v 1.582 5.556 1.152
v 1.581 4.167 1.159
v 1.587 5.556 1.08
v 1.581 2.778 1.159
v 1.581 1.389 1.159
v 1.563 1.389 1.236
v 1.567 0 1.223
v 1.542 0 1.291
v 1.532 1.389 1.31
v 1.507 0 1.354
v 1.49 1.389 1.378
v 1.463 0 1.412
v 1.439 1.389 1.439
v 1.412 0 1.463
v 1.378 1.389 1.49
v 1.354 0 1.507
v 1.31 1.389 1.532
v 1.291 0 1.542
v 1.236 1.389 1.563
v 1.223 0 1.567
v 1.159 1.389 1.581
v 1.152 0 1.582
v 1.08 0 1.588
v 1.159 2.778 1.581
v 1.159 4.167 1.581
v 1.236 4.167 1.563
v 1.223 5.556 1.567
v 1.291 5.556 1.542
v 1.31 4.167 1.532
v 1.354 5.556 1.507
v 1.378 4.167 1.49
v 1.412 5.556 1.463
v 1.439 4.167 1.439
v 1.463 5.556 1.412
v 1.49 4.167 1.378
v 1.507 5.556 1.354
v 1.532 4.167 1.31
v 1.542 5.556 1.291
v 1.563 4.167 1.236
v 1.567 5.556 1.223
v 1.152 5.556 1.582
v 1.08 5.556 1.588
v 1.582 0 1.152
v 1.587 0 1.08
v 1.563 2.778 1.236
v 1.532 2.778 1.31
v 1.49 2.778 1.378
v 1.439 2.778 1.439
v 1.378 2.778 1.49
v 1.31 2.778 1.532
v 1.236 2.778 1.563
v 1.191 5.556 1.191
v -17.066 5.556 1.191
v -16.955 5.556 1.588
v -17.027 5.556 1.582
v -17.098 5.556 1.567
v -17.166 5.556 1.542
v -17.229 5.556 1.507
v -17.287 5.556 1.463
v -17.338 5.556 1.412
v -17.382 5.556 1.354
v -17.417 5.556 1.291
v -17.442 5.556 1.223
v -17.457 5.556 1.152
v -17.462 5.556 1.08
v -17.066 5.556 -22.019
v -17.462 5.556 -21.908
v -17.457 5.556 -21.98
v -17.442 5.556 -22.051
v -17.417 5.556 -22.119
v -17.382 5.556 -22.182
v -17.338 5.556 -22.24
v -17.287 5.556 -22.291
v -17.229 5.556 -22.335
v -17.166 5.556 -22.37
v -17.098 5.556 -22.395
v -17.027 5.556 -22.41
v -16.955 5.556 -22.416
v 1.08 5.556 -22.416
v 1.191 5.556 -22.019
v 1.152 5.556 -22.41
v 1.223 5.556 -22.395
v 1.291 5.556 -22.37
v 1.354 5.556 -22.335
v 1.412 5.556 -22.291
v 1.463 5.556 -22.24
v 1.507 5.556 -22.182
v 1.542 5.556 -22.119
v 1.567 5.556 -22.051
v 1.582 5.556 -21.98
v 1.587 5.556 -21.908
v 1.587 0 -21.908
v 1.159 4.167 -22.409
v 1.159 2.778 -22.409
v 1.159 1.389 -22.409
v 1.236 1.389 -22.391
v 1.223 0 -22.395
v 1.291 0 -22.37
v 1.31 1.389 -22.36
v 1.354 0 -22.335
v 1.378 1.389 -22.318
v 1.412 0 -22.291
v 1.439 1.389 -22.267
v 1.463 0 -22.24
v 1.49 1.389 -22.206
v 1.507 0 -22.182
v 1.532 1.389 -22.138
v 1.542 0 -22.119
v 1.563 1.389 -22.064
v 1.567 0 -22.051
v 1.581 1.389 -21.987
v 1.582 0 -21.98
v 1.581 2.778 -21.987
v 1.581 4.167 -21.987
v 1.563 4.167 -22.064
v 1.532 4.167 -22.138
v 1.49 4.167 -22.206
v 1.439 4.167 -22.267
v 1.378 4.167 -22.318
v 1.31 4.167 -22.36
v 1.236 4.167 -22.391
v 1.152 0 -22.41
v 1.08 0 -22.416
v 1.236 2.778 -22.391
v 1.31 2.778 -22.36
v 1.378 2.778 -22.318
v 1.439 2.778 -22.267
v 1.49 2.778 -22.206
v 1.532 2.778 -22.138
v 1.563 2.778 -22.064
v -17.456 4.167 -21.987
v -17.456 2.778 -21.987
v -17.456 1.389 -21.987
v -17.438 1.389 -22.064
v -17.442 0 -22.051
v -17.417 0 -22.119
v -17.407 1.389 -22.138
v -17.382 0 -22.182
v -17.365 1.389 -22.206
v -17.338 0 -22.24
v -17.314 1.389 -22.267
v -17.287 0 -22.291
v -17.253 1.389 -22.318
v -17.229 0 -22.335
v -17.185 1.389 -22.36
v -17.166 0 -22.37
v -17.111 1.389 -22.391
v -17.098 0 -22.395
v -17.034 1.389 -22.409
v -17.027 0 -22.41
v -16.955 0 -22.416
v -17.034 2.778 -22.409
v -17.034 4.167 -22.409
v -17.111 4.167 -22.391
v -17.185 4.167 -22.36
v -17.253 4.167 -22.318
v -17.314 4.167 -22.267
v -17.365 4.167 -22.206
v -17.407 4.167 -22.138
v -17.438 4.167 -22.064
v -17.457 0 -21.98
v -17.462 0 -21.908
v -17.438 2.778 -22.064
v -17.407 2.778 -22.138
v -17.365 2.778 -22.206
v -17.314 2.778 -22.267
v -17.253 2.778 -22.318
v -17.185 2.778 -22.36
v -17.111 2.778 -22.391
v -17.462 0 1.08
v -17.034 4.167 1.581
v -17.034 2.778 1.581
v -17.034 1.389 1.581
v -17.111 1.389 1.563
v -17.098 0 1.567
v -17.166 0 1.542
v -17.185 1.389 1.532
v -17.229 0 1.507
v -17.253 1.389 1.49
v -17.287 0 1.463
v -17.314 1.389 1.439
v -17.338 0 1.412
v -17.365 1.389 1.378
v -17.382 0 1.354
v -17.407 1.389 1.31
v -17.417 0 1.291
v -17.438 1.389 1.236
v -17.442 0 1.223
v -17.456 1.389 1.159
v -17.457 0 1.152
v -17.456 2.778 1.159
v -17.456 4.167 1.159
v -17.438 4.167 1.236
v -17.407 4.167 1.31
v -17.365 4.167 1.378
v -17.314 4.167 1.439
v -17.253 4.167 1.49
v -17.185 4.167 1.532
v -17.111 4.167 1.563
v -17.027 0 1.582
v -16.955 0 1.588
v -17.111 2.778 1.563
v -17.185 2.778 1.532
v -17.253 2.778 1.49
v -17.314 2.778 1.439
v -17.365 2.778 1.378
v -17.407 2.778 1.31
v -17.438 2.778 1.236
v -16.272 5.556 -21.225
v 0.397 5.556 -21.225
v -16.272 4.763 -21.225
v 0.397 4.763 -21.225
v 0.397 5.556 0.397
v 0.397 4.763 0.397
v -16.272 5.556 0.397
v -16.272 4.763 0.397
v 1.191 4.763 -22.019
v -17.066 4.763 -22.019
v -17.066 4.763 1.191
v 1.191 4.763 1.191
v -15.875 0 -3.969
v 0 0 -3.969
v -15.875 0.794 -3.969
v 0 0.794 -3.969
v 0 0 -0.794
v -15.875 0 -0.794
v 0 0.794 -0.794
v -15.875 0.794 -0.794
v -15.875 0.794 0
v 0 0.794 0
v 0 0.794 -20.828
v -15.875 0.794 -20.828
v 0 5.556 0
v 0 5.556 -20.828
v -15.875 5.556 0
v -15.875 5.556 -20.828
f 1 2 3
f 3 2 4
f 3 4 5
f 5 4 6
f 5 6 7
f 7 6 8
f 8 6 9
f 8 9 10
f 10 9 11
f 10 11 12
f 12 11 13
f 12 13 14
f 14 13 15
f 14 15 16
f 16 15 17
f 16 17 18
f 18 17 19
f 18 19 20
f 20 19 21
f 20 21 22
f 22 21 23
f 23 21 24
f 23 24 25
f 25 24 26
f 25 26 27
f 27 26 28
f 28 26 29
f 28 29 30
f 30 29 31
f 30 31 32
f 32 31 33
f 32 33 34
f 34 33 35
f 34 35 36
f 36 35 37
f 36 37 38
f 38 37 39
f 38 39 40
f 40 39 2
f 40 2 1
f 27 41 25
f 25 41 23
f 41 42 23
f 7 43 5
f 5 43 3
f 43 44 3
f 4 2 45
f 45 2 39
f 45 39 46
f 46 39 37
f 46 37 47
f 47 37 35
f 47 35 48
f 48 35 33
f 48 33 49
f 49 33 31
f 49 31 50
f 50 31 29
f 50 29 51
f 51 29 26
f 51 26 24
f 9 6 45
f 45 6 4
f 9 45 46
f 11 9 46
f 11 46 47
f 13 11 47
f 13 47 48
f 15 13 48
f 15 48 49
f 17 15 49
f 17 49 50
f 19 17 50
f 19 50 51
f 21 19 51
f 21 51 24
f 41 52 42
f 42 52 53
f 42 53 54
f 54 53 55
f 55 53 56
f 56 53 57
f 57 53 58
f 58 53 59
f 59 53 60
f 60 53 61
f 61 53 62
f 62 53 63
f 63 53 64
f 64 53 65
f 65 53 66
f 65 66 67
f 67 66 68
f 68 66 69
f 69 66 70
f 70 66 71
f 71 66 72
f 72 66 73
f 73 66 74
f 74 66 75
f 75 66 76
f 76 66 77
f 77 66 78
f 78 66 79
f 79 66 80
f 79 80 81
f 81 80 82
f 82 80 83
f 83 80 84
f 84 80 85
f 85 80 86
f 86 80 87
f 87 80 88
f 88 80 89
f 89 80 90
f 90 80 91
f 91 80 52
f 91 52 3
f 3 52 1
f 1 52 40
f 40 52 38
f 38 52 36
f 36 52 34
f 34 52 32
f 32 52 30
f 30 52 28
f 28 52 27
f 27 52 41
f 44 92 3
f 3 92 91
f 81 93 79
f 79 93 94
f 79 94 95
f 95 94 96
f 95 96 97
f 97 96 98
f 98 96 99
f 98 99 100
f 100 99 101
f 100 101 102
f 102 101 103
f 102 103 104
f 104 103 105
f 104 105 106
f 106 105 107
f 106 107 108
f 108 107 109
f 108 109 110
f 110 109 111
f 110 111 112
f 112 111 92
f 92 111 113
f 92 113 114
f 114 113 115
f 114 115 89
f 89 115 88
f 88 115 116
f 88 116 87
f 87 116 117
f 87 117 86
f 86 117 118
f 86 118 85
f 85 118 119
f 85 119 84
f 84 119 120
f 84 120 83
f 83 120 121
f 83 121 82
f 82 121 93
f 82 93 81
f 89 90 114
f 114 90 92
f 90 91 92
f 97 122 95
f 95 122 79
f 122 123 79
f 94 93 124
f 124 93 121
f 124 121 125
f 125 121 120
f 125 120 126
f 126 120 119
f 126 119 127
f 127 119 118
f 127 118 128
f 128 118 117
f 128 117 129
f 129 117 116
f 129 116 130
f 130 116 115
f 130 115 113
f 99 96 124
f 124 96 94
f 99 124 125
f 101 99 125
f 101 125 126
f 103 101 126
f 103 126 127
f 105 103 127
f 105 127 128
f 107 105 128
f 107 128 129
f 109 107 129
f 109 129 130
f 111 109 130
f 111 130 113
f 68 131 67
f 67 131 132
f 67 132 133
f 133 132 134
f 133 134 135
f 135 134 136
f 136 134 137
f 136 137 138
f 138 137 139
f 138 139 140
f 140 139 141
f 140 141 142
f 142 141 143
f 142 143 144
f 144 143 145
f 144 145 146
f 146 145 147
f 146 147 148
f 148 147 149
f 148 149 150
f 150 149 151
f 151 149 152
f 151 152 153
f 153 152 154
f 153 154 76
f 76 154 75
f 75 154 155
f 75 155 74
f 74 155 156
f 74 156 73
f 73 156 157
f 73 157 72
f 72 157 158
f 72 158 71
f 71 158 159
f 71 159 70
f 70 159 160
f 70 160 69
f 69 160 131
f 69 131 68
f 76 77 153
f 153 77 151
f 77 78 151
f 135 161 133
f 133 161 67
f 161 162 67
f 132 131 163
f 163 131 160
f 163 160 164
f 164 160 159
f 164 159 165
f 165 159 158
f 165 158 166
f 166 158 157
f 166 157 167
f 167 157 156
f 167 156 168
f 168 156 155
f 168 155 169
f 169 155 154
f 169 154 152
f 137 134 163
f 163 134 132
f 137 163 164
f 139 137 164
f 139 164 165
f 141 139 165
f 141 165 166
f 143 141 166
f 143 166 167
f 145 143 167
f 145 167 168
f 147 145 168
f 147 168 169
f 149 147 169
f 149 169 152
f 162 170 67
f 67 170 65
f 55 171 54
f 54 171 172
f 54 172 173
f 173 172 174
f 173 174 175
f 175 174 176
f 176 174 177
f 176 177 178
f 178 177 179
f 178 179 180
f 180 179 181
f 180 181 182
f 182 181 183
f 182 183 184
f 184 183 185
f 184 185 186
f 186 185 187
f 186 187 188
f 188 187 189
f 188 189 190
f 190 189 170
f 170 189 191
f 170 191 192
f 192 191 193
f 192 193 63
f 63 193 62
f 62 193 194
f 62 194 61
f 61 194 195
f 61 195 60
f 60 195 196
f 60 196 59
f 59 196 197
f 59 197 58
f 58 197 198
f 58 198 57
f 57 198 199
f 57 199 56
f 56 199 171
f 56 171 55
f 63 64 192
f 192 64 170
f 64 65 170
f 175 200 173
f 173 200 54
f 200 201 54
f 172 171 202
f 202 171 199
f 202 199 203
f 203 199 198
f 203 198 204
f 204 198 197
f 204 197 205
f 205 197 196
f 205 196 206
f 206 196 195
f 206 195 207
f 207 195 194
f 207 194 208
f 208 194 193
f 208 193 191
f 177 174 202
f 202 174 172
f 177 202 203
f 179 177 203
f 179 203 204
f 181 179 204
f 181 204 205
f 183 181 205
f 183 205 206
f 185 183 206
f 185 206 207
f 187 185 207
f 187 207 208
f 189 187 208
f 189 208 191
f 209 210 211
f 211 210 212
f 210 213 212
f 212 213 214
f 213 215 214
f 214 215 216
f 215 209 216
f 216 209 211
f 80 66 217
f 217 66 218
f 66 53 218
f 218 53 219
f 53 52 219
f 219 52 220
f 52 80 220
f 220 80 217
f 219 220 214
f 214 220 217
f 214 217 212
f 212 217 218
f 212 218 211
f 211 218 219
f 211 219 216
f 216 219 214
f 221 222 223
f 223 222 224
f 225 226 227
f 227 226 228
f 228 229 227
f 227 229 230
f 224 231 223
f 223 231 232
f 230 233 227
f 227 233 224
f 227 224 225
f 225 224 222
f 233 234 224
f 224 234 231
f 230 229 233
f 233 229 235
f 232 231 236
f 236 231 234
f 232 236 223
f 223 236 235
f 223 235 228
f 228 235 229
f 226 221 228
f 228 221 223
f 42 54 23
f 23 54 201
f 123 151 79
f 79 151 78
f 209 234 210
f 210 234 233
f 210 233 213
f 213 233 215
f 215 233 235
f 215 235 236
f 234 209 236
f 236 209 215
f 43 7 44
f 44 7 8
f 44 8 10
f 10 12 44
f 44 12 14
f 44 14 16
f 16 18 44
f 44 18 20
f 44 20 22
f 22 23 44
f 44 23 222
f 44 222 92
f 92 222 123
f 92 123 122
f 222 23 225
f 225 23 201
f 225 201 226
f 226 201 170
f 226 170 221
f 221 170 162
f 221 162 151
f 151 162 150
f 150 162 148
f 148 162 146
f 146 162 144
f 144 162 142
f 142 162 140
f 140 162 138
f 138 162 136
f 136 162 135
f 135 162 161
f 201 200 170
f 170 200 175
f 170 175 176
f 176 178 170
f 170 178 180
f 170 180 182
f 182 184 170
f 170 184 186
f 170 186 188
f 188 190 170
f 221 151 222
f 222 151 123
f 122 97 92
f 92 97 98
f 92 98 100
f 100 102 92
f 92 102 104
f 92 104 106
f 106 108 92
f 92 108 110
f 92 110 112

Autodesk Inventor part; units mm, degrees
ref_plane "YZ Plane" through (0, 0, 0) normal (1, 0, 0) x (0, 1, 0)
ref_plane "XZ Plane" through (0, 0, 0) normal (0, 1, 0) x (-1, 0, 0)
ref_plane "XY Plane" through (0, 0, 0) normal (0, 0, 1) x (1, 0, 0)
sketch "Sketch1" plane through (0, 0, 0) normal (0, 1, 0) x (-1, 0, 0)
  line L0 (0, 0) -> (15.875, 0)
  line L1 (15.875, 0) -> (15.875, -20.828)
  line L2 (15.875, -20.828) -> (0, -20.828)
  line L3 (0, -20.828) -> (0, 0)
  line L4 (17.4625, 1.5875) -> (-1.5875, 1.5875)
  line L5 (-1.5875, 1.5875) -> (-1.5875, -22.4155)
  line L6 (-1.5875, -22.4155) -> (17.4625, -22.4155)
  line L7 (17.4625, -22.4155) -> (17.4625, 1.5875)
  dimension "d0" = 20.828
  dimension "d1" = 15.875
  dimension "d2" = 1.5875
  dimension "d3" = 1.5875
  dimension "d4" = 1.5875
  dimension "d5" = 1.5875
extrude "Extrusion1" add sketch "Sketch1" along normal blind 0.7937 contours L0 L1 L2 L3
extrude "Extrusion2" add sketch "Sketch1" along normal blind 5.5563
sketch "Sketch2" plane through (0, 0.7937, 0) normal (0, 1, 0) x (1, 0, 0)
  line L0 (0, 0) -> (-15.875, 0) projected
  line L1 (0, 20.828) -> (-15.875, 20.828) projected
  line L2 (-15.875, 20.828) -> (-15.875, 0) projected
  line L3 (-15.875, 0) -> (0, 0) projected
  line L4 (0, 0) -> (0, 20.828) projected
  line L5 (-15.875, 0.7938) -> (0, 0.7937)
  line L6 (0, 0.7937) -> (0, 3.9688)
  line L7 (0, 3.9688) -> (-15.875, 3.9687)
  line L8 (-15.875, 3.9687) -> (-15.875, 0.7938)
  point P0 (0, 0.7937)
  dimension "d10" = 3.175
  dimension "d11" = 0.7937
extrude "Extrusion3" cut sketch "Sketch2" against normal blind 5.5563 contours L5 L2 L7 L4
sketch "Sketch3" plane through (0, 5.5563, 0) normal (0, 1, 0) x (1, 0, 0)
  line L0 (1.5875, -1.5875) -> (1.5875, 22.4155) projected
  line L1 (1.5875, 22.4155) -> (-17.4625, 22.4155) projected
  line L2 (-17.4625, 22.4155) -> (-17.4625, -1.5875) projected
  line L3 (-17.4625, -1.5875) -> (1.5875, -1.5875) projected
  line L4 (0, 0) -> (-15.875, 0) projected
  line L5 (-15.875, 0) -> (-15.875, 20.828) projected
  line L6 (-15.875, 20.828) -> (0, 20.828) projected
  line L7 (0, 20.828) -> (0, 0) projected
  line L8 (-17.0656, -1.1906) -> (1.1906, -1.1906)
  line L9 (1.1906, -1.1906) -> (1.1906, 22.0186)
  line L10 (1.1906, 22.0186) -> (-17.0656, 22.0186)
  line L11 (-17.0656, 22.0186) -> (-17.0656, -1.1906)
  line L12 (-16.2719, -0.3969) -> (0.3969, -0.3969)
  line L13 (0.3969, -0.3969) -> (0.3969, 21.2249)
  line L14 (0.3969, 21.2249) -> (-16.2719, 21.2249)
  line L15 (-16.2719, 21.2249) -> (-16.2719, -0.3969)
  dimension "d14" = 0.3969
  dimension "d15" = 0.3969
  dimension "d16" = 0.3969
  dimension "d17" = 0.3969
  dimension "d18" = 0.3969
  dimension "d19" = 0.3969
  dimension "d20" = 0.3969
  dimension "d21" = 0.3969
extrude "Extrusion4" cut sketch "Sketch3" against normal blind 0.7937 contours L11 L10 L9 L8
fillet "Fillet1" radius 0.508 4 edges at (-17.4625, 2.7781, 1.5875) (-17.4625, 2.7781, -22.4155) (1.5875, 2.7781, -22.4155) (1.5875, 2.7781, 1.5875)
properties part number "Light Sensor Box V1_3DPrint"
